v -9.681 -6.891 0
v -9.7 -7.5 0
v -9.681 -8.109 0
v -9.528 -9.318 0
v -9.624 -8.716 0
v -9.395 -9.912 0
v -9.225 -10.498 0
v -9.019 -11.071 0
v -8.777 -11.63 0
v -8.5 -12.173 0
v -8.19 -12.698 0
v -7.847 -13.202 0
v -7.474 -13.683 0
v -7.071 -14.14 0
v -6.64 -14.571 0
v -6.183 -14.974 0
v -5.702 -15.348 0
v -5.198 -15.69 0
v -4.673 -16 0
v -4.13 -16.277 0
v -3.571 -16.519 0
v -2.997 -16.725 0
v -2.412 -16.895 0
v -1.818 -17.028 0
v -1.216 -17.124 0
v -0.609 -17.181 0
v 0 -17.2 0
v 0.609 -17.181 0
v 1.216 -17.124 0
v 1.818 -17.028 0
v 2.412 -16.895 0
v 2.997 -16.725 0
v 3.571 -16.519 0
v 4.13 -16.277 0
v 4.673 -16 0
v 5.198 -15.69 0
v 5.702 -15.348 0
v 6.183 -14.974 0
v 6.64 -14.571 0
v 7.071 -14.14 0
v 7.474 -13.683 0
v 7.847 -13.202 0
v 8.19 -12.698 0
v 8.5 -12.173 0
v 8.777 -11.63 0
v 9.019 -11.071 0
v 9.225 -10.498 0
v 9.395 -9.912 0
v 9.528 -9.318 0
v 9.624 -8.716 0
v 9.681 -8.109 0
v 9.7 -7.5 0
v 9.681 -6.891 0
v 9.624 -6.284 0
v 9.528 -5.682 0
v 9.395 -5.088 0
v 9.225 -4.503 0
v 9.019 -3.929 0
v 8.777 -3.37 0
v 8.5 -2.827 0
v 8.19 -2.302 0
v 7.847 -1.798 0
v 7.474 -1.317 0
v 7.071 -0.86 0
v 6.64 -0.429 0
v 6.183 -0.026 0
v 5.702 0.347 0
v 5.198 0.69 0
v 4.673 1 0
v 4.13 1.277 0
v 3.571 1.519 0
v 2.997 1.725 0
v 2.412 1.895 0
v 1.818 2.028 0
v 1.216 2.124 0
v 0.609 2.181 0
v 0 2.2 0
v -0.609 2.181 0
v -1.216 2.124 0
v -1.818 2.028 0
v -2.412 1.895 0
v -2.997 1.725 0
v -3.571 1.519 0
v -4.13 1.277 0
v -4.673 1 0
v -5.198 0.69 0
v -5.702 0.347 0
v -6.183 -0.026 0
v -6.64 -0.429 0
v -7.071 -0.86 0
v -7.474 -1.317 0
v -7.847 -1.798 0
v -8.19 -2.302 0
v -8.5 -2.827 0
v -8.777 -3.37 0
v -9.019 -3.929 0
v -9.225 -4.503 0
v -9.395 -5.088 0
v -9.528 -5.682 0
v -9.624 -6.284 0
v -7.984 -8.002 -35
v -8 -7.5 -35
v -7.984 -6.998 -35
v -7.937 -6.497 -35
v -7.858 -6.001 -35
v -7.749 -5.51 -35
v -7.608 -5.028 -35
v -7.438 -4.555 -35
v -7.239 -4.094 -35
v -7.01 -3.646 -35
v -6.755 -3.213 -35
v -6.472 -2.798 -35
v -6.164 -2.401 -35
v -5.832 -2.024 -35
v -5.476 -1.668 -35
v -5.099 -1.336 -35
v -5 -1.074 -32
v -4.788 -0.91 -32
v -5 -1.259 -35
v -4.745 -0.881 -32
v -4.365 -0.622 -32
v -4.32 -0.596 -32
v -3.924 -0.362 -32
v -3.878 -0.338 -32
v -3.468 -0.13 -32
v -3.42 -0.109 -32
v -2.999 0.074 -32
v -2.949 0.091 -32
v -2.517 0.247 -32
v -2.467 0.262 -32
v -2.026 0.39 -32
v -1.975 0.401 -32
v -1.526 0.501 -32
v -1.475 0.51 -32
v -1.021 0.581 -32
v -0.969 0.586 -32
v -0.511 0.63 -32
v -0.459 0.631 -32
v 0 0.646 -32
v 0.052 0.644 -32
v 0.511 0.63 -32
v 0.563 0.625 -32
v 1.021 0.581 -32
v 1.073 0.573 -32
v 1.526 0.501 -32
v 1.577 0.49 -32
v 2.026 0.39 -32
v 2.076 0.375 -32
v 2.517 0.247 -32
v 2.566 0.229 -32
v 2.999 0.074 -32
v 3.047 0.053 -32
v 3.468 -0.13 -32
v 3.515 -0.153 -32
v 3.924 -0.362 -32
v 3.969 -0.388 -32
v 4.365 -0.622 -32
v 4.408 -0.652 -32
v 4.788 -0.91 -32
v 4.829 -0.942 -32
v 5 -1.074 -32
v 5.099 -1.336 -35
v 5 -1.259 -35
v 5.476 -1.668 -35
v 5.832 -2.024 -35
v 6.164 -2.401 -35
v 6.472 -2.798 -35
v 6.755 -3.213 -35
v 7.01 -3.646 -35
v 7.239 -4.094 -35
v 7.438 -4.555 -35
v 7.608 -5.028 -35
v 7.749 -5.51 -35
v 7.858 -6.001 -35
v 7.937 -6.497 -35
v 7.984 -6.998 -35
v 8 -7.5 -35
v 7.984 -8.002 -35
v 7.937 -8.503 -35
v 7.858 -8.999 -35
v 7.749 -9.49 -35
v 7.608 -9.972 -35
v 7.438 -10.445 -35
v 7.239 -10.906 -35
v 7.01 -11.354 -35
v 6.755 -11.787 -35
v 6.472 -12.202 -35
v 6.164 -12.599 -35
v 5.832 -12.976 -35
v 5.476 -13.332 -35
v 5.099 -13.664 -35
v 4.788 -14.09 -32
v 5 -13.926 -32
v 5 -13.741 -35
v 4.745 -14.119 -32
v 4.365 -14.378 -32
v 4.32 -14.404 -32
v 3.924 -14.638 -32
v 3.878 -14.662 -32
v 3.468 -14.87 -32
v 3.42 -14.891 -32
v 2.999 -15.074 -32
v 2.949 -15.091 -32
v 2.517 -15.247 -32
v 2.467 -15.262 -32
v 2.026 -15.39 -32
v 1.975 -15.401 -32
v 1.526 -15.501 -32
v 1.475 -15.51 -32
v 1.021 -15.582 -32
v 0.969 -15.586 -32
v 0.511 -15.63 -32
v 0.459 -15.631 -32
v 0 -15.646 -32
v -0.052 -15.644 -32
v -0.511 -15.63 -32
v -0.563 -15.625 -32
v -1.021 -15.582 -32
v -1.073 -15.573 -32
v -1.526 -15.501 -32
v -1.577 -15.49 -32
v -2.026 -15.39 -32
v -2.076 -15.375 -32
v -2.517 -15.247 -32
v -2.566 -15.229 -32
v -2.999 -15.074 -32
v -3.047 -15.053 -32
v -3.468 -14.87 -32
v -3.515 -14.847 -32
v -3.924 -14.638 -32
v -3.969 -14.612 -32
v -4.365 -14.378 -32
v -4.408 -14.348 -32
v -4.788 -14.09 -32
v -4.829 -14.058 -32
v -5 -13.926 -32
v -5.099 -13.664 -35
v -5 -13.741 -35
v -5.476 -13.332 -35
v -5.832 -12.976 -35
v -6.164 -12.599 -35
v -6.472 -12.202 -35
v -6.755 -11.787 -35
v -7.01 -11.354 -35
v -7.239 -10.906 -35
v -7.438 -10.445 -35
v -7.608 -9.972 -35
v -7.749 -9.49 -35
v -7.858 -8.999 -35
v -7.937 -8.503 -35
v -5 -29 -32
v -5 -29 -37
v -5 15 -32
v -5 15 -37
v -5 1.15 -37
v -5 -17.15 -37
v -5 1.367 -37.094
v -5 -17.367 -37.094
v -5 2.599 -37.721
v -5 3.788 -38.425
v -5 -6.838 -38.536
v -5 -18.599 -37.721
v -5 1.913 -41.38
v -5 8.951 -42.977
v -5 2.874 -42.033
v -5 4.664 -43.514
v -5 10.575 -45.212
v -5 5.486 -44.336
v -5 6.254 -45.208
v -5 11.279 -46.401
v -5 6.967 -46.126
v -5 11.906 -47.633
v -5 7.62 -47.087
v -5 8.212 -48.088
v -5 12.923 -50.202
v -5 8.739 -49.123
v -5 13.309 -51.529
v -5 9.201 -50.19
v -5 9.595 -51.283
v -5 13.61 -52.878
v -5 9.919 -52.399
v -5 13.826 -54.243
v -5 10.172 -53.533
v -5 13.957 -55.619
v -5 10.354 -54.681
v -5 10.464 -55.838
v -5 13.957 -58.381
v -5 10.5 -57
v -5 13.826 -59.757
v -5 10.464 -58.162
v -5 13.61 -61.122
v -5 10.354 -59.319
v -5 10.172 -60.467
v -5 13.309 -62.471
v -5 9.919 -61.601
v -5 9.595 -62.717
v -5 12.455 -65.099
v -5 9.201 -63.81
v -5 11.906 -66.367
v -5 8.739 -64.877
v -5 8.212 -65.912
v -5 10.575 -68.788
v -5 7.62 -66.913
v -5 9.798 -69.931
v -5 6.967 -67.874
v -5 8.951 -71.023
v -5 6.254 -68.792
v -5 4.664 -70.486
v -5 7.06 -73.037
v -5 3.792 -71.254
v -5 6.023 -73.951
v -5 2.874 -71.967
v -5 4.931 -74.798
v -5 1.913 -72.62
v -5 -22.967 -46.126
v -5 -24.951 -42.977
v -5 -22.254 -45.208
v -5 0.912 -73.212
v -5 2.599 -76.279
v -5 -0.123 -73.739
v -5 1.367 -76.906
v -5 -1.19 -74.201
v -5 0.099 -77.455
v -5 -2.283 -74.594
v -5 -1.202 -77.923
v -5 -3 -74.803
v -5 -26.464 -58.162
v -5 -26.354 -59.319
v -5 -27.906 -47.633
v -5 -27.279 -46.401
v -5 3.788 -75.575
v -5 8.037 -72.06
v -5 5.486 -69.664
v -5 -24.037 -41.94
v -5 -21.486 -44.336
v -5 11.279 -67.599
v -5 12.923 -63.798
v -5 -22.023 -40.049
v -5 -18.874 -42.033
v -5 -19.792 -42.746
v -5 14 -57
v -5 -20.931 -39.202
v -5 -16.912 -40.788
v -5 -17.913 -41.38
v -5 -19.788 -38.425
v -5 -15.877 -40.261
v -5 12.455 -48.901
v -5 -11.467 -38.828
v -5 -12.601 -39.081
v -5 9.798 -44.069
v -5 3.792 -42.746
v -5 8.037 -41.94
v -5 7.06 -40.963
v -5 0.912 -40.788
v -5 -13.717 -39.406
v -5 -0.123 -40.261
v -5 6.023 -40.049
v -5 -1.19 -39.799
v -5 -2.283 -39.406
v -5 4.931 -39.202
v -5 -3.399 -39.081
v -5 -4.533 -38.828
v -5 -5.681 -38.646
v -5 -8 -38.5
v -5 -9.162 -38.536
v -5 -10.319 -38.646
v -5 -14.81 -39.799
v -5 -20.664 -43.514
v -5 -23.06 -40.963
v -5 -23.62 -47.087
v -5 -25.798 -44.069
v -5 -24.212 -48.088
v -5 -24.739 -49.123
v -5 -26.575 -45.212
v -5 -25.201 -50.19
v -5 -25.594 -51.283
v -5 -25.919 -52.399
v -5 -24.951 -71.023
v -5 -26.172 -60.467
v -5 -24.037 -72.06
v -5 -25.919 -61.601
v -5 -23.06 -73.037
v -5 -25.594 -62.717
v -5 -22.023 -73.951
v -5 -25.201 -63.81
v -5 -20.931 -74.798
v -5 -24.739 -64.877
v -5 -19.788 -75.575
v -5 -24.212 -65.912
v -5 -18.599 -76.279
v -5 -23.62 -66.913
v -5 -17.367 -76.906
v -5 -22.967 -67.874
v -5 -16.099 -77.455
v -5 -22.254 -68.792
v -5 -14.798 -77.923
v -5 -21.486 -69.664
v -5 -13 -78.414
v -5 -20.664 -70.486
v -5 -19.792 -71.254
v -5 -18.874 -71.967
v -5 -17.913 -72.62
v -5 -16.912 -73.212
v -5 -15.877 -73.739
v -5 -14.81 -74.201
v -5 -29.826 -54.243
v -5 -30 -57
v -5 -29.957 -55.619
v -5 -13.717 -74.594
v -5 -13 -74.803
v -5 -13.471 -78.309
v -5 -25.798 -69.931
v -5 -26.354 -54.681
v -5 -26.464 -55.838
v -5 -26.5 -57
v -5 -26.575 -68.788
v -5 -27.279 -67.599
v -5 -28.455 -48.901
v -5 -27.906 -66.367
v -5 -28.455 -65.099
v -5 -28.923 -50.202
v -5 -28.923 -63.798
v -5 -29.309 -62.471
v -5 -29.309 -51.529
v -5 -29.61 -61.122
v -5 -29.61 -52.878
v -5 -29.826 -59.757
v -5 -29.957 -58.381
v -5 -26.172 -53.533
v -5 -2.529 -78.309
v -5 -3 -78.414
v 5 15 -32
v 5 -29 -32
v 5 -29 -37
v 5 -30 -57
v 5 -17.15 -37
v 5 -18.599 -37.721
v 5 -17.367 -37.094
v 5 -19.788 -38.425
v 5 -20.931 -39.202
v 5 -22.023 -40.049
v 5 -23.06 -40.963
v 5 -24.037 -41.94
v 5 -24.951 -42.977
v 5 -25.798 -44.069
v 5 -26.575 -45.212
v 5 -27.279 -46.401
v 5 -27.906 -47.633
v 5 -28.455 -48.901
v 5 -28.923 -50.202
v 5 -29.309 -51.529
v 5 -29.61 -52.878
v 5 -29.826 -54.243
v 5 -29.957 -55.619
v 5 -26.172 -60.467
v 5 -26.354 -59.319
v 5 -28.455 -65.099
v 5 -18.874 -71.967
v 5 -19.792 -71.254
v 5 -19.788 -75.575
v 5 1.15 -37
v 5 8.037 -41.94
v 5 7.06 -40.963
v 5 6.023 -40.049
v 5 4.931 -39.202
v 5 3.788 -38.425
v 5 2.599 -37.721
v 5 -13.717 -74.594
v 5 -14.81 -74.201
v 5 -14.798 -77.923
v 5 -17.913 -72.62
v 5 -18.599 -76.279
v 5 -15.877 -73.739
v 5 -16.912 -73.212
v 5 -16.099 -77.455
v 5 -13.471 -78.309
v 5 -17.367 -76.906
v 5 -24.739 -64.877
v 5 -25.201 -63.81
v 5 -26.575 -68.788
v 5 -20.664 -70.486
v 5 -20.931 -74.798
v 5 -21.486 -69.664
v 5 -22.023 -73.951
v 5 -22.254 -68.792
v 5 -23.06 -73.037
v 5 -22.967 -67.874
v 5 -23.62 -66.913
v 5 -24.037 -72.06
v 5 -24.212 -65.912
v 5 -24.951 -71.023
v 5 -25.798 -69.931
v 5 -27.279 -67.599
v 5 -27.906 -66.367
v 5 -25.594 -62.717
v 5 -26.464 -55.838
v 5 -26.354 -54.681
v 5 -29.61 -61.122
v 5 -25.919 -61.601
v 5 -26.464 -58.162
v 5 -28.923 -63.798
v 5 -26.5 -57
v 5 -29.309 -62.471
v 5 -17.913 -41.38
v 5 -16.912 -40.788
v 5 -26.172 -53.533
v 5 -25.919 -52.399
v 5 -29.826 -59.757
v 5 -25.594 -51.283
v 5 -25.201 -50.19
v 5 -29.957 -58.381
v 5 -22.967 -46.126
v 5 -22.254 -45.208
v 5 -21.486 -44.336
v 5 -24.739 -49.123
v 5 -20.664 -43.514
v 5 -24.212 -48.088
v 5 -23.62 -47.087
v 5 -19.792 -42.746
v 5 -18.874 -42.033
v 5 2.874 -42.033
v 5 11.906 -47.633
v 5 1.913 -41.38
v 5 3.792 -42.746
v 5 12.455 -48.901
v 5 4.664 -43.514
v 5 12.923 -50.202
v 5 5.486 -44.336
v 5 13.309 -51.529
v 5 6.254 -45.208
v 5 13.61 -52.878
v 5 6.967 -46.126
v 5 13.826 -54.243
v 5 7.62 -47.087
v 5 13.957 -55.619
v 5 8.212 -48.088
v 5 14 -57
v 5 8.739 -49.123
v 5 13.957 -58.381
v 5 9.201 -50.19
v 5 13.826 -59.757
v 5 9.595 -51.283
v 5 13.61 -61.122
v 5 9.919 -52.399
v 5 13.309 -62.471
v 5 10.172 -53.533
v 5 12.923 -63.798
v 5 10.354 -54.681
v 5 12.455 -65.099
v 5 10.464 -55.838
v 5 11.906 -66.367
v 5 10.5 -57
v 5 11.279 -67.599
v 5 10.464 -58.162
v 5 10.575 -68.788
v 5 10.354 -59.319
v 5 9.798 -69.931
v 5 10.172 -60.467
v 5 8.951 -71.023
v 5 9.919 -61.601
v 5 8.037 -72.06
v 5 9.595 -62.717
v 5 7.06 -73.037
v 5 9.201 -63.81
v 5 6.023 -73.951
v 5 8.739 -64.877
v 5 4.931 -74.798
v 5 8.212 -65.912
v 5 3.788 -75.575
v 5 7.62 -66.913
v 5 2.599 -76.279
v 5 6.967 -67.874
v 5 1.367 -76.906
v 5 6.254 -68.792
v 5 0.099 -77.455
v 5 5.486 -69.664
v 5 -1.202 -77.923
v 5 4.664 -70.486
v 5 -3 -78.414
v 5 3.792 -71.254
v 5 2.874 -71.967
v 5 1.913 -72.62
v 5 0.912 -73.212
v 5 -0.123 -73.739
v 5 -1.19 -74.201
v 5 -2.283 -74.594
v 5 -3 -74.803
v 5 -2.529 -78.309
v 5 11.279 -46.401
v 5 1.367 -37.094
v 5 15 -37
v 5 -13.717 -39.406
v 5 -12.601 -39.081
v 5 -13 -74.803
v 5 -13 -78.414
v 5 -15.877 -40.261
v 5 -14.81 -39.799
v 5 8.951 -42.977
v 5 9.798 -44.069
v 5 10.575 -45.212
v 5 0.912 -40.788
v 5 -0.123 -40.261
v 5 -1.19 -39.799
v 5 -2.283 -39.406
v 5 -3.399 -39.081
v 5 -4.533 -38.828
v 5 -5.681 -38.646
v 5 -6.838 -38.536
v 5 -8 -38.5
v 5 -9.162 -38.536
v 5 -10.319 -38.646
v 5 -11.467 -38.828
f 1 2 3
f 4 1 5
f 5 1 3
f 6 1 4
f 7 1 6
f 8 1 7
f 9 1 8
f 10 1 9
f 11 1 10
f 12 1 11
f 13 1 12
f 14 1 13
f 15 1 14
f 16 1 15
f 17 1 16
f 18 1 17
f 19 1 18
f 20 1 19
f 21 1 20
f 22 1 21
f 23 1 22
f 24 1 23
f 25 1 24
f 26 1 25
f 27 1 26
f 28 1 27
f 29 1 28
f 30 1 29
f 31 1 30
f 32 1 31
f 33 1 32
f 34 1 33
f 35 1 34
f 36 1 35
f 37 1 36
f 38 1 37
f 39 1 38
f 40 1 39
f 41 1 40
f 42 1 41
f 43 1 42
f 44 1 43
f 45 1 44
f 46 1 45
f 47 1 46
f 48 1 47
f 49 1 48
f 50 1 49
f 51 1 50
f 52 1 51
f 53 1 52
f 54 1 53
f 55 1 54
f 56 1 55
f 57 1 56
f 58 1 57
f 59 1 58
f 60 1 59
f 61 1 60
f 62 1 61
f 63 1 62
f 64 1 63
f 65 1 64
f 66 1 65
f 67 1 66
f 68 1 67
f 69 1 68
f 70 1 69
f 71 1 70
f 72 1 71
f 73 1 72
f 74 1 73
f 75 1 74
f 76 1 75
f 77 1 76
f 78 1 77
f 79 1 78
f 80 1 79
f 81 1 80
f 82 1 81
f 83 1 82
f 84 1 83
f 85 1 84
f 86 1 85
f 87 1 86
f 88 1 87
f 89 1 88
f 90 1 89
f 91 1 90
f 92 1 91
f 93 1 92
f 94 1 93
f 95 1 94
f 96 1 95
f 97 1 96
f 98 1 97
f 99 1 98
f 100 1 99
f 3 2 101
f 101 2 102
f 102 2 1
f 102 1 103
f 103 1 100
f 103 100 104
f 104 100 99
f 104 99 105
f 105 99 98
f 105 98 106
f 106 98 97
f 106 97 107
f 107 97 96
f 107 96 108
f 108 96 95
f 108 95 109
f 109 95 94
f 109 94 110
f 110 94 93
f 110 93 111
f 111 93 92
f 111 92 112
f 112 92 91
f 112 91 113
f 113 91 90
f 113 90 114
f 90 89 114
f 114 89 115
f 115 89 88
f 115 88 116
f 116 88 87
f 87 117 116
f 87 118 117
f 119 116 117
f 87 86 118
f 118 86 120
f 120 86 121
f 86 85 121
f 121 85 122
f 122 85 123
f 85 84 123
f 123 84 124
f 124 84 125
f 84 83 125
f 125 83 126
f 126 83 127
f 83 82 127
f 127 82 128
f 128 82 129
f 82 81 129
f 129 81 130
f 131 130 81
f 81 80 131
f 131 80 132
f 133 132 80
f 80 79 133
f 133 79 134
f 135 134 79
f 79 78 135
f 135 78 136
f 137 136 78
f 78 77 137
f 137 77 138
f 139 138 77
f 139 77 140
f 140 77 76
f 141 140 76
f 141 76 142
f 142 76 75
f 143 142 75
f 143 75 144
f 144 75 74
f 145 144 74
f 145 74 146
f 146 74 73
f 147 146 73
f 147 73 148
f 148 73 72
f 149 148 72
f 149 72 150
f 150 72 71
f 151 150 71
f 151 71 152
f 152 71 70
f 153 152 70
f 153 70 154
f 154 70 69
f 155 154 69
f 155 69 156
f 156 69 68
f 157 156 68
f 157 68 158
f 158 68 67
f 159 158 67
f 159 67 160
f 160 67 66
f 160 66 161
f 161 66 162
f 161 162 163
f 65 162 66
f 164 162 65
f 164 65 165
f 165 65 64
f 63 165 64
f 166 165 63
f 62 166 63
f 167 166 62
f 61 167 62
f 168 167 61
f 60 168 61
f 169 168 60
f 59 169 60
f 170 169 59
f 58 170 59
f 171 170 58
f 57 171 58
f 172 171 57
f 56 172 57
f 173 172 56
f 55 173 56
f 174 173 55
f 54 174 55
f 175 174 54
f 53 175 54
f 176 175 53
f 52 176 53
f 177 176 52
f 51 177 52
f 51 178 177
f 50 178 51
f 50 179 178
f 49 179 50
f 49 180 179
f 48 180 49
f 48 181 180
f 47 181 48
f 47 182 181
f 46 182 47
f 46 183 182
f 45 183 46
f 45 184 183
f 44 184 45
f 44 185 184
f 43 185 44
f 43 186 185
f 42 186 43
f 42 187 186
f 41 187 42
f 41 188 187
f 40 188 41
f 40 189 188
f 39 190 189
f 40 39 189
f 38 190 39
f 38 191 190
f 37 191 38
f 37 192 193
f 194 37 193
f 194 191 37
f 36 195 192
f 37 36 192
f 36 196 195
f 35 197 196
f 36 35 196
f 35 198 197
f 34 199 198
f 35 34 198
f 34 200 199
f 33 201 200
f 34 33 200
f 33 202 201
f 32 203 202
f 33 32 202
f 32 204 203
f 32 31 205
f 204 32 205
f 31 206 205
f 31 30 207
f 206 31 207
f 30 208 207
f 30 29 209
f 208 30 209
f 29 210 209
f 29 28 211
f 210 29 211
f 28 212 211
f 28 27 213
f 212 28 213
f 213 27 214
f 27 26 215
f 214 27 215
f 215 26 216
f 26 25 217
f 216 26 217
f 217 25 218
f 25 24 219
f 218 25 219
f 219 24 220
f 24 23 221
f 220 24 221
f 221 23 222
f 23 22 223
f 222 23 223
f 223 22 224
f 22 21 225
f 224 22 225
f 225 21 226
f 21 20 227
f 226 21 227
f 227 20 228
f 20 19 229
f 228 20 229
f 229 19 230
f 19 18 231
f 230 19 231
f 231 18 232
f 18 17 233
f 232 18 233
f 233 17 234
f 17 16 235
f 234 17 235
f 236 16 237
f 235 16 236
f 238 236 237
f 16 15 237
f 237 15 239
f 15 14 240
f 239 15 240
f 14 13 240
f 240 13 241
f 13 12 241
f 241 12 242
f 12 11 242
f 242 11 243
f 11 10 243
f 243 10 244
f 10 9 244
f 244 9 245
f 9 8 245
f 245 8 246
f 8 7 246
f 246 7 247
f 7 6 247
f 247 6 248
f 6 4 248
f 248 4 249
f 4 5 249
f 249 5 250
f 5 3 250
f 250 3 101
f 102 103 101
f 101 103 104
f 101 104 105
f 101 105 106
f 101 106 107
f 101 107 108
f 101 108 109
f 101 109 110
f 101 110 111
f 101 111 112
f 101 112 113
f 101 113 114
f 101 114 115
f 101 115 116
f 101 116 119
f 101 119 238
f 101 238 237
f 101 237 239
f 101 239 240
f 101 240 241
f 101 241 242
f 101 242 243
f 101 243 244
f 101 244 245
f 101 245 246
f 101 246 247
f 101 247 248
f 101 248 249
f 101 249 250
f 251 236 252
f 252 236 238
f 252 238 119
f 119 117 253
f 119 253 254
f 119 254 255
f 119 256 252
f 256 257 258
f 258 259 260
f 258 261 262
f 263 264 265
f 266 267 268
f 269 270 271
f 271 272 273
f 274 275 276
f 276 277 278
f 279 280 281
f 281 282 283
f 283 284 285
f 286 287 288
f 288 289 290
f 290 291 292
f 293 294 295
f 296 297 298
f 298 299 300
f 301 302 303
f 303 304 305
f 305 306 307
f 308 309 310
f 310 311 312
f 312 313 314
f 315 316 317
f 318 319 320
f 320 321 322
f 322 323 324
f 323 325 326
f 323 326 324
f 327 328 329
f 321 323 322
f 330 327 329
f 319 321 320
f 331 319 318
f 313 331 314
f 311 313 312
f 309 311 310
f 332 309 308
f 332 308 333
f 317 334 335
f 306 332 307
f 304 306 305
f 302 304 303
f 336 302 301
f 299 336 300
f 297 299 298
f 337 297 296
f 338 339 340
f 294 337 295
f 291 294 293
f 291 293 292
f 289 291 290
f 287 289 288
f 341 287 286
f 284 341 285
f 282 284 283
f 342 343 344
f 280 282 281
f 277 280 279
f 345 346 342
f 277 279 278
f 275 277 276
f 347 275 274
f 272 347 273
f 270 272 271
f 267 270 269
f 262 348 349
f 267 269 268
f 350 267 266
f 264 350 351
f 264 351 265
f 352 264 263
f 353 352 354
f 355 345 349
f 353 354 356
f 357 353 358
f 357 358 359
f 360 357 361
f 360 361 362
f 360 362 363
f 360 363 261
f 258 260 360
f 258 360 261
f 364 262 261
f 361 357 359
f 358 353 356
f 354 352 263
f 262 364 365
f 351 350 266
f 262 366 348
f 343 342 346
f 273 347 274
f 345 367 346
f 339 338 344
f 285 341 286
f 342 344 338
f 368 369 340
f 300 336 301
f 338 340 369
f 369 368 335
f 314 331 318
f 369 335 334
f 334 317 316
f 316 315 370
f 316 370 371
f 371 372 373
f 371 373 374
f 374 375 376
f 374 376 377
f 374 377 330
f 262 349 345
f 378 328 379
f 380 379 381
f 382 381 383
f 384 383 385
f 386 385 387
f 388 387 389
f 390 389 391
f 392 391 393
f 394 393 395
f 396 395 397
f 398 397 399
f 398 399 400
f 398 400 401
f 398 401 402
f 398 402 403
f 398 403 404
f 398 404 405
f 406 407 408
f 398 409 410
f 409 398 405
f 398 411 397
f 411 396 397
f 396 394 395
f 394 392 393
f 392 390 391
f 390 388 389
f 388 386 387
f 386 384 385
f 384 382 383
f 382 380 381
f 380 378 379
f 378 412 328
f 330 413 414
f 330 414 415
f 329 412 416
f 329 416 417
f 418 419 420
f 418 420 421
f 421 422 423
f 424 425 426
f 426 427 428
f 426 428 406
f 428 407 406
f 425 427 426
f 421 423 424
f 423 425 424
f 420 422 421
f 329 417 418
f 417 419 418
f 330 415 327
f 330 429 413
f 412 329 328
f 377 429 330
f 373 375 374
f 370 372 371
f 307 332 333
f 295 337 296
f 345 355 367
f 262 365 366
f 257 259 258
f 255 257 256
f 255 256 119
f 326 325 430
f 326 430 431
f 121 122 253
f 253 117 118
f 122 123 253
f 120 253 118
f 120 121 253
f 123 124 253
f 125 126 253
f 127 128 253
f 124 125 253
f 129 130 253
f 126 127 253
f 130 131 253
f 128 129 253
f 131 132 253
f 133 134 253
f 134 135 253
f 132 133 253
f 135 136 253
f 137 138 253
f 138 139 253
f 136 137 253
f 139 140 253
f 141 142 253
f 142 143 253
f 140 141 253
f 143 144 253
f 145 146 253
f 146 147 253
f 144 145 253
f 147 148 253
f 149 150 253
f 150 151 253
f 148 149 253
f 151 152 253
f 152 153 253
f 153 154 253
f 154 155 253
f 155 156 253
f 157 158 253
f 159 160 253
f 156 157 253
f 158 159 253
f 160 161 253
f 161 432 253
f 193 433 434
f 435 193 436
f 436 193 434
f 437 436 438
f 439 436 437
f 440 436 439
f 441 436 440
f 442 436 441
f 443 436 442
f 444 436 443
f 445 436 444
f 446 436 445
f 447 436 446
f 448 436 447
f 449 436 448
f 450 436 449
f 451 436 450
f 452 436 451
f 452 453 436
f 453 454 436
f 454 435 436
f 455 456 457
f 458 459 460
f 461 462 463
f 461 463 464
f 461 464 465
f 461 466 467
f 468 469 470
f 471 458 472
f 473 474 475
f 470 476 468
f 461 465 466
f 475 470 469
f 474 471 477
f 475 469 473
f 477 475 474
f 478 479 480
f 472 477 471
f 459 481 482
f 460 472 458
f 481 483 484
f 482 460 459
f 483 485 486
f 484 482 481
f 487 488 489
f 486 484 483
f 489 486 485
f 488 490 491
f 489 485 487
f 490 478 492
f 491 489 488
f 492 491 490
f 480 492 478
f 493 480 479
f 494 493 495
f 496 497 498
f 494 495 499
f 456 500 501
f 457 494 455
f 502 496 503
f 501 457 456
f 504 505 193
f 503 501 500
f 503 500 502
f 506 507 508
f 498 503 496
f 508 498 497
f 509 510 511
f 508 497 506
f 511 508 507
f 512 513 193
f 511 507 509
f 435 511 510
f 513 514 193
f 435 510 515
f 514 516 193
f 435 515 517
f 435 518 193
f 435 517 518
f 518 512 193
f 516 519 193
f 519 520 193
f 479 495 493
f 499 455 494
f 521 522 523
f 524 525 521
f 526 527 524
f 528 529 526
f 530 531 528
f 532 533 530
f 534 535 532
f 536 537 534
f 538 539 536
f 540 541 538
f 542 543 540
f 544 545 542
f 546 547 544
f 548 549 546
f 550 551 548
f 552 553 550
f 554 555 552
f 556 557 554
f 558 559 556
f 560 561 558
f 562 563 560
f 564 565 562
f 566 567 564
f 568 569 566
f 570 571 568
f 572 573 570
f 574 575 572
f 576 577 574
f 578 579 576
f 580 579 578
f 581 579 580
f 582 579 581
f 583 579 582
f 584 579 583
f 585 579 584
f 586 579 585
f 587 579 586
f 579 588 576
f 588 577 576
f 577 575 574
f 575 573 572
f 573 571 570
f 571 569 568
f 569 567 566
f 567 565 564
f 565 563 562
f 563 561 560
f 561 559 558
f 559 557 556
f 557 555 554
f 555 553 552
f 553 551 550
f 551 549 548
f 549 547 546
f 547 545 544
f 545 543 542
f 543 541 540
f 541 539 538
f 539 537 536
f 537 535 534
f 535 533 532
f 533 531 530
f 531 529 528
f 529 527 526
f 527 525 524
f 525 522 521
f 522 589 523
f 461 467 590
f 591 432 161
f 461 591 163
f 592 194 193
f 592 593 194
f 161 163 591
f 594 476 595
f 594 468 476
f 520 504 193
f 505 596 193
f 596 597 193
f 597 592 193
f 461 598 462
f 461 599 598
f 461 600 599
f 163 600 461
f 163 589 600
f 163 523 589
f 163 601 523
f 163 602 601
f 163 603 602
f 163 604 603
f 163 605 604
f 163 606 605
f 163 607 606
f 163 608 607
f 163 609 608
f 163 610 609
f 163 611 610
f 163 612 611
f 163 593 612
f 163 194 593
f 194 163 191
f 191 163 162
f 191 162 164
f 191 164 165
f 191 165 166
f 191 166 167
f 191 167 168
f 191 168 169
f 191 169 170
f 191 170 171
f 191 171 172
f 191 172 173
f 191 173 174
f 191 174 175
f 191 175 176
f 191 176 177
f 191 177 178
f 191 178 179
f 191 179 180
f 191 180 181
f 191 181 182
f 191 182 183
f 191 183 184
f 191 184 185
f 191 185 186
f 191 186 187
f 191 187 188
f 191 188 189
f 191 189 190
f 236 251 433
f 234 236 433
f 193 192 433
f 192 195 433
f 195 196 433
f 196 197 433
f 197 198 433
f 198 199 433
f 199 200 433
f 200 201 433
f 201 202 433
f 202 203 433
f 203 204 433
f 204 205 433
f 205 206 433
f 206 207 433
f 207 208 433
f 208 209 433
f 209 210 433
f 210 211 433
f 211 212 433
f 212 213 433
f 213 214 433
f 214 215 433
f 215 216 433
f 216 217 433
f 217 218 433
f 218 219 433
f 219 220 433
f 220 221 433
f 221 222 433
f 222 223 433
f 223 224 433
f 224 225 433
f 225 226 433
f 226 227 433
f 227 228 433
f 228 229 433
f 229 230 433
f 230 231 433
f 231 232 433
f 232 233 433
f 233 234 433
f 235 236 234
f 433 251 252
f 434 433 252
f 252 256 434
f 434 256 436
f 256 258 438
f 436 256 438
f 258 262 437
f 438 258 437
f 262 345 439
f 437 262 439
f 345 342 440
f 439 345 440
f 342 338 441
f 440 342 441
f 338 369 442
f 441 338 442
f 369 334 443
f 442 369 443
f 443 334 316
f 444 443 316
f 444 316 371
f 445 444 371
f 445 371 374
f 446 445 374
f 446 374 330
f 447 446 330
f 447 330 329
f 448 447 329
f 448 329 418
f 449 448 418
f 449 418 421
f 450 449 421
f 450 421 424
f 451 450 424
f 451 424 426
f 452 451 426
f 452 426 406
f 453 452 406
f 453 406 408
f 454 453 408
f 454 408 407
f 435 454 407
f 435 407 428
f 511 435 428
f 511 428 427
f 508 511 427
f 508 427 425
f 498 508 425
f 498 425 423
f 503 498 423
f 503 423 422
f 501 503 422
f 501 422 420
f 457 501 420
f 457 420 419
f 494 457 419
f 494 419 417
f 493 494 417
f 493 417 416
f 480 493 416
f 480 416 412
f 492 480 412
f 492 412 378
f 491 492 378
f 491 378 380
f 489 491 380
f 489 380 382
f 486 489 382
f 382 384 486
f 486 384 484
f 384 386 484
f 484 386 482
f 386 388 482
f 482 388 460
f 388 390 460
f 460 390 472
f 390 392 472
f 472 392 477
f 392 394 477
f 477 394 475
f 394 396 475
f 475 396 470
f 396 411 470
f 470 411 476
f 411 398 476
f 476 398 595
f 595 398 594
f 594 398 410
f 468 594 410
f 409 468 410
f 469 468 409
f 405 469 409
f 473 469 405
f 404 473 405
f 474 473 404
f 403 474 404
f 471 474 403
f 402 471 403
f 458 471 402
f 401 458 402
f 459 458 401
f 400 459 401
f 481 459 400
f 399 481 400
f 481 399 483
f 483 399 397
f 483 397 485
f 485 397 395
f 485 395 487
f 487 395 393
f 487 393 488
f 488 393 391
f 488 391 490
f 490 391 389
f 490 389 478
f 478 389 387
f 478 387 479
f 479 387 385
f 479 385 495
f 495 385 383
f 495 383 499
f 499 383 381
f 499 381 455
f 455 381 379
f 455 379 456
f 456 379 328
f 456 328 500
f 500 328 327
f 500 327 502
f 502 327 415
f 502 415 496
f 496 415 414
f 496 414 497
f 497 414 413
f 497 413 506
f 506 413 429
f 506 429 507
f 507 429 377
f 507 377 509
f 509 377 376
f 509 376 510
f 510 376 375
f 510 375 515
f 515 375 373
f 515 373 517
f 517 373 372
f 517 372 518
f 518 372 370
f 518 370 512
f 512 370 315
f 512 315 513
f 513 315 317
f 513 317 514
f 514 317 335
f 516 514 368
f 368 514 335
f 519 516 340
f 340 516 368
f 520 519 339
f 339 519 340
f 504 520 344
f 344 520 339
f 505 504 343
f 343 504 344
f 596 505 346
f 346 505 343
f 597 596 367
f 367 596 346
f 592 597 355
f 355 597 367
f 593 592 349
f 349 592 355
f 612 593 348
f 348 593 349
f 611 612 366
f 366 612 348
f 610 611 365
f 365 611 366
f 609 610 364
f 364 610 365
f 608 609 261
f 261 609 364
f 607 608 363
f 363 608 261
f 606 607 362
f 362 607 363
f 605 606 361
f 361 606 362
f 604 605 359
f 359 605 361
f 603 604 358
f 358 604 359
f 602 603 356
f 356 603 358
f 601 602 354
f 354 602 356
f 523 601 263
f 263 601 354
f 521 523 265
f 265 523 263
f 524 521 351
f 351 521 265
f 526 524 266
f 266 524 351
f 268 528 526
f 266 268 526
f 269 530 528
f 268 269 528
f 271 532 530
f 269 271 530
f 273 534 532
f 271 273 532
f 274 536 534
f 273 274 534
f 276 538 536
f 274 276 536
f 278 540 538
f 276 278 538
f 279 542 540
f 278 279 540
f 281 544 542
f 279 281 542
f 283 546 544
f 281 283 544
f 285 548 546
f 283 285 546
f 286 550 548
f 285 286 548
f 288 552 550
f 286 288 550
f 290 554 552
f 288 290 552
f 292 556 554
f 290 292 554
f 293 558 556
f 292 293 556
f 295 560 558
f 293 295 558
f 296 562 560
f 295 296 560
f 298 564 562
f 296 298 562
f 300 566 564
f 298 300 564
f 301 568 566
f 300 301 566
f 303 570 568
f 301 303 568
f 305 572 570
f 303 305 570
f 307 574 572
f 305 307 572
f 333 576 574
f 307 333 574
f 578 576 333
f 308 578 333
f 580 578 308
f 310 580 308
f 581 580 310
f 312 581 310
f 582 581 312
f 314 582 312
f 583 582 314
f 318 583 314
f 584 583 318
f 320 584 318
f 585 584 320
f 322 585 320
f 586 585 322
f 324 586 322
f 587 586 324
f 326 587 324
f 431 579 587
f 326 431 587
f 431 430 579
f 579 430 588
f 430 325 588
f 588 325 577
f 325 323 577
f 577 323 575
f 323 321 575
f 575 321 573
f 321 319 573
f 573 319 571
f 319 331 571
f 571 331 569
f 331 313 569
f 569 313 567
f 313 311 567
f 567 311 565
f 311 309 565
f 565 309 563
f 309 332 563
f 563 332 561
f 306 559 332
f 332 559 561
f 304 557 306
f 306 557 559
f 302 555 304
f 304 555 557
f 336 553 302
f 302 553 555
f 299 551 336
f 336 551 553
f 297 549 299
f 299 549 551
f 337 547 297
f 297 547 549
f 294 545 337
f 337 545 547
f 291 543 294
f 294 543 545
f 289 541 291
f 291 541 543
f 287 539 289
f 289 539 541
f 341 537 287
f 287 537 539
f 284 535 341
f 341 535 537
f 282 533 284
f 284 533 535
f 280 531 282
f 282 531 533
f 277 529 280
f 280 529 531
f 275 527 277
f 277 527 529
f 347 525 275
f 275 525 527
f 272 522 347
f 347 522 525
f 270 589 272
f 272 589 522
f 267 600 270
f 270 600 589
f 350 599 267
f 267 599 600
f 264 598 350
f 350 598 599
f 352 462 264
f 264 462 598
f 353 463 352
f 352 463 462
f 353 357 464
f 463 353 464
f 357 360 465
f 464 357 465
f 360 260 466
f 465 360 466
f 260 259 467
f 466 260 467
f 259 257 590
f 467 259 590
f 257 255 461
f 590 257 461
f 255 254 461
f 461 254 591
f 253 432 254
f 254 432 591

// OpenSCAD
$fn=100;
f=44; //размер кольца с вырезом
translate ([-5,-8,-57])rotate ([90,0,90]){
translate ([-21,20,0])cube ([f,5,10]);
difference () {
cylinder  (10,f/2,f/2);
translate ([0,0,-2])cylinder  (15,37/2,37/2);
translate ([-5,-30,-1])cube ([10,20,15]);
}
 }

translate ([0,-7.5,-35])cylinder (35,8,9.7);
